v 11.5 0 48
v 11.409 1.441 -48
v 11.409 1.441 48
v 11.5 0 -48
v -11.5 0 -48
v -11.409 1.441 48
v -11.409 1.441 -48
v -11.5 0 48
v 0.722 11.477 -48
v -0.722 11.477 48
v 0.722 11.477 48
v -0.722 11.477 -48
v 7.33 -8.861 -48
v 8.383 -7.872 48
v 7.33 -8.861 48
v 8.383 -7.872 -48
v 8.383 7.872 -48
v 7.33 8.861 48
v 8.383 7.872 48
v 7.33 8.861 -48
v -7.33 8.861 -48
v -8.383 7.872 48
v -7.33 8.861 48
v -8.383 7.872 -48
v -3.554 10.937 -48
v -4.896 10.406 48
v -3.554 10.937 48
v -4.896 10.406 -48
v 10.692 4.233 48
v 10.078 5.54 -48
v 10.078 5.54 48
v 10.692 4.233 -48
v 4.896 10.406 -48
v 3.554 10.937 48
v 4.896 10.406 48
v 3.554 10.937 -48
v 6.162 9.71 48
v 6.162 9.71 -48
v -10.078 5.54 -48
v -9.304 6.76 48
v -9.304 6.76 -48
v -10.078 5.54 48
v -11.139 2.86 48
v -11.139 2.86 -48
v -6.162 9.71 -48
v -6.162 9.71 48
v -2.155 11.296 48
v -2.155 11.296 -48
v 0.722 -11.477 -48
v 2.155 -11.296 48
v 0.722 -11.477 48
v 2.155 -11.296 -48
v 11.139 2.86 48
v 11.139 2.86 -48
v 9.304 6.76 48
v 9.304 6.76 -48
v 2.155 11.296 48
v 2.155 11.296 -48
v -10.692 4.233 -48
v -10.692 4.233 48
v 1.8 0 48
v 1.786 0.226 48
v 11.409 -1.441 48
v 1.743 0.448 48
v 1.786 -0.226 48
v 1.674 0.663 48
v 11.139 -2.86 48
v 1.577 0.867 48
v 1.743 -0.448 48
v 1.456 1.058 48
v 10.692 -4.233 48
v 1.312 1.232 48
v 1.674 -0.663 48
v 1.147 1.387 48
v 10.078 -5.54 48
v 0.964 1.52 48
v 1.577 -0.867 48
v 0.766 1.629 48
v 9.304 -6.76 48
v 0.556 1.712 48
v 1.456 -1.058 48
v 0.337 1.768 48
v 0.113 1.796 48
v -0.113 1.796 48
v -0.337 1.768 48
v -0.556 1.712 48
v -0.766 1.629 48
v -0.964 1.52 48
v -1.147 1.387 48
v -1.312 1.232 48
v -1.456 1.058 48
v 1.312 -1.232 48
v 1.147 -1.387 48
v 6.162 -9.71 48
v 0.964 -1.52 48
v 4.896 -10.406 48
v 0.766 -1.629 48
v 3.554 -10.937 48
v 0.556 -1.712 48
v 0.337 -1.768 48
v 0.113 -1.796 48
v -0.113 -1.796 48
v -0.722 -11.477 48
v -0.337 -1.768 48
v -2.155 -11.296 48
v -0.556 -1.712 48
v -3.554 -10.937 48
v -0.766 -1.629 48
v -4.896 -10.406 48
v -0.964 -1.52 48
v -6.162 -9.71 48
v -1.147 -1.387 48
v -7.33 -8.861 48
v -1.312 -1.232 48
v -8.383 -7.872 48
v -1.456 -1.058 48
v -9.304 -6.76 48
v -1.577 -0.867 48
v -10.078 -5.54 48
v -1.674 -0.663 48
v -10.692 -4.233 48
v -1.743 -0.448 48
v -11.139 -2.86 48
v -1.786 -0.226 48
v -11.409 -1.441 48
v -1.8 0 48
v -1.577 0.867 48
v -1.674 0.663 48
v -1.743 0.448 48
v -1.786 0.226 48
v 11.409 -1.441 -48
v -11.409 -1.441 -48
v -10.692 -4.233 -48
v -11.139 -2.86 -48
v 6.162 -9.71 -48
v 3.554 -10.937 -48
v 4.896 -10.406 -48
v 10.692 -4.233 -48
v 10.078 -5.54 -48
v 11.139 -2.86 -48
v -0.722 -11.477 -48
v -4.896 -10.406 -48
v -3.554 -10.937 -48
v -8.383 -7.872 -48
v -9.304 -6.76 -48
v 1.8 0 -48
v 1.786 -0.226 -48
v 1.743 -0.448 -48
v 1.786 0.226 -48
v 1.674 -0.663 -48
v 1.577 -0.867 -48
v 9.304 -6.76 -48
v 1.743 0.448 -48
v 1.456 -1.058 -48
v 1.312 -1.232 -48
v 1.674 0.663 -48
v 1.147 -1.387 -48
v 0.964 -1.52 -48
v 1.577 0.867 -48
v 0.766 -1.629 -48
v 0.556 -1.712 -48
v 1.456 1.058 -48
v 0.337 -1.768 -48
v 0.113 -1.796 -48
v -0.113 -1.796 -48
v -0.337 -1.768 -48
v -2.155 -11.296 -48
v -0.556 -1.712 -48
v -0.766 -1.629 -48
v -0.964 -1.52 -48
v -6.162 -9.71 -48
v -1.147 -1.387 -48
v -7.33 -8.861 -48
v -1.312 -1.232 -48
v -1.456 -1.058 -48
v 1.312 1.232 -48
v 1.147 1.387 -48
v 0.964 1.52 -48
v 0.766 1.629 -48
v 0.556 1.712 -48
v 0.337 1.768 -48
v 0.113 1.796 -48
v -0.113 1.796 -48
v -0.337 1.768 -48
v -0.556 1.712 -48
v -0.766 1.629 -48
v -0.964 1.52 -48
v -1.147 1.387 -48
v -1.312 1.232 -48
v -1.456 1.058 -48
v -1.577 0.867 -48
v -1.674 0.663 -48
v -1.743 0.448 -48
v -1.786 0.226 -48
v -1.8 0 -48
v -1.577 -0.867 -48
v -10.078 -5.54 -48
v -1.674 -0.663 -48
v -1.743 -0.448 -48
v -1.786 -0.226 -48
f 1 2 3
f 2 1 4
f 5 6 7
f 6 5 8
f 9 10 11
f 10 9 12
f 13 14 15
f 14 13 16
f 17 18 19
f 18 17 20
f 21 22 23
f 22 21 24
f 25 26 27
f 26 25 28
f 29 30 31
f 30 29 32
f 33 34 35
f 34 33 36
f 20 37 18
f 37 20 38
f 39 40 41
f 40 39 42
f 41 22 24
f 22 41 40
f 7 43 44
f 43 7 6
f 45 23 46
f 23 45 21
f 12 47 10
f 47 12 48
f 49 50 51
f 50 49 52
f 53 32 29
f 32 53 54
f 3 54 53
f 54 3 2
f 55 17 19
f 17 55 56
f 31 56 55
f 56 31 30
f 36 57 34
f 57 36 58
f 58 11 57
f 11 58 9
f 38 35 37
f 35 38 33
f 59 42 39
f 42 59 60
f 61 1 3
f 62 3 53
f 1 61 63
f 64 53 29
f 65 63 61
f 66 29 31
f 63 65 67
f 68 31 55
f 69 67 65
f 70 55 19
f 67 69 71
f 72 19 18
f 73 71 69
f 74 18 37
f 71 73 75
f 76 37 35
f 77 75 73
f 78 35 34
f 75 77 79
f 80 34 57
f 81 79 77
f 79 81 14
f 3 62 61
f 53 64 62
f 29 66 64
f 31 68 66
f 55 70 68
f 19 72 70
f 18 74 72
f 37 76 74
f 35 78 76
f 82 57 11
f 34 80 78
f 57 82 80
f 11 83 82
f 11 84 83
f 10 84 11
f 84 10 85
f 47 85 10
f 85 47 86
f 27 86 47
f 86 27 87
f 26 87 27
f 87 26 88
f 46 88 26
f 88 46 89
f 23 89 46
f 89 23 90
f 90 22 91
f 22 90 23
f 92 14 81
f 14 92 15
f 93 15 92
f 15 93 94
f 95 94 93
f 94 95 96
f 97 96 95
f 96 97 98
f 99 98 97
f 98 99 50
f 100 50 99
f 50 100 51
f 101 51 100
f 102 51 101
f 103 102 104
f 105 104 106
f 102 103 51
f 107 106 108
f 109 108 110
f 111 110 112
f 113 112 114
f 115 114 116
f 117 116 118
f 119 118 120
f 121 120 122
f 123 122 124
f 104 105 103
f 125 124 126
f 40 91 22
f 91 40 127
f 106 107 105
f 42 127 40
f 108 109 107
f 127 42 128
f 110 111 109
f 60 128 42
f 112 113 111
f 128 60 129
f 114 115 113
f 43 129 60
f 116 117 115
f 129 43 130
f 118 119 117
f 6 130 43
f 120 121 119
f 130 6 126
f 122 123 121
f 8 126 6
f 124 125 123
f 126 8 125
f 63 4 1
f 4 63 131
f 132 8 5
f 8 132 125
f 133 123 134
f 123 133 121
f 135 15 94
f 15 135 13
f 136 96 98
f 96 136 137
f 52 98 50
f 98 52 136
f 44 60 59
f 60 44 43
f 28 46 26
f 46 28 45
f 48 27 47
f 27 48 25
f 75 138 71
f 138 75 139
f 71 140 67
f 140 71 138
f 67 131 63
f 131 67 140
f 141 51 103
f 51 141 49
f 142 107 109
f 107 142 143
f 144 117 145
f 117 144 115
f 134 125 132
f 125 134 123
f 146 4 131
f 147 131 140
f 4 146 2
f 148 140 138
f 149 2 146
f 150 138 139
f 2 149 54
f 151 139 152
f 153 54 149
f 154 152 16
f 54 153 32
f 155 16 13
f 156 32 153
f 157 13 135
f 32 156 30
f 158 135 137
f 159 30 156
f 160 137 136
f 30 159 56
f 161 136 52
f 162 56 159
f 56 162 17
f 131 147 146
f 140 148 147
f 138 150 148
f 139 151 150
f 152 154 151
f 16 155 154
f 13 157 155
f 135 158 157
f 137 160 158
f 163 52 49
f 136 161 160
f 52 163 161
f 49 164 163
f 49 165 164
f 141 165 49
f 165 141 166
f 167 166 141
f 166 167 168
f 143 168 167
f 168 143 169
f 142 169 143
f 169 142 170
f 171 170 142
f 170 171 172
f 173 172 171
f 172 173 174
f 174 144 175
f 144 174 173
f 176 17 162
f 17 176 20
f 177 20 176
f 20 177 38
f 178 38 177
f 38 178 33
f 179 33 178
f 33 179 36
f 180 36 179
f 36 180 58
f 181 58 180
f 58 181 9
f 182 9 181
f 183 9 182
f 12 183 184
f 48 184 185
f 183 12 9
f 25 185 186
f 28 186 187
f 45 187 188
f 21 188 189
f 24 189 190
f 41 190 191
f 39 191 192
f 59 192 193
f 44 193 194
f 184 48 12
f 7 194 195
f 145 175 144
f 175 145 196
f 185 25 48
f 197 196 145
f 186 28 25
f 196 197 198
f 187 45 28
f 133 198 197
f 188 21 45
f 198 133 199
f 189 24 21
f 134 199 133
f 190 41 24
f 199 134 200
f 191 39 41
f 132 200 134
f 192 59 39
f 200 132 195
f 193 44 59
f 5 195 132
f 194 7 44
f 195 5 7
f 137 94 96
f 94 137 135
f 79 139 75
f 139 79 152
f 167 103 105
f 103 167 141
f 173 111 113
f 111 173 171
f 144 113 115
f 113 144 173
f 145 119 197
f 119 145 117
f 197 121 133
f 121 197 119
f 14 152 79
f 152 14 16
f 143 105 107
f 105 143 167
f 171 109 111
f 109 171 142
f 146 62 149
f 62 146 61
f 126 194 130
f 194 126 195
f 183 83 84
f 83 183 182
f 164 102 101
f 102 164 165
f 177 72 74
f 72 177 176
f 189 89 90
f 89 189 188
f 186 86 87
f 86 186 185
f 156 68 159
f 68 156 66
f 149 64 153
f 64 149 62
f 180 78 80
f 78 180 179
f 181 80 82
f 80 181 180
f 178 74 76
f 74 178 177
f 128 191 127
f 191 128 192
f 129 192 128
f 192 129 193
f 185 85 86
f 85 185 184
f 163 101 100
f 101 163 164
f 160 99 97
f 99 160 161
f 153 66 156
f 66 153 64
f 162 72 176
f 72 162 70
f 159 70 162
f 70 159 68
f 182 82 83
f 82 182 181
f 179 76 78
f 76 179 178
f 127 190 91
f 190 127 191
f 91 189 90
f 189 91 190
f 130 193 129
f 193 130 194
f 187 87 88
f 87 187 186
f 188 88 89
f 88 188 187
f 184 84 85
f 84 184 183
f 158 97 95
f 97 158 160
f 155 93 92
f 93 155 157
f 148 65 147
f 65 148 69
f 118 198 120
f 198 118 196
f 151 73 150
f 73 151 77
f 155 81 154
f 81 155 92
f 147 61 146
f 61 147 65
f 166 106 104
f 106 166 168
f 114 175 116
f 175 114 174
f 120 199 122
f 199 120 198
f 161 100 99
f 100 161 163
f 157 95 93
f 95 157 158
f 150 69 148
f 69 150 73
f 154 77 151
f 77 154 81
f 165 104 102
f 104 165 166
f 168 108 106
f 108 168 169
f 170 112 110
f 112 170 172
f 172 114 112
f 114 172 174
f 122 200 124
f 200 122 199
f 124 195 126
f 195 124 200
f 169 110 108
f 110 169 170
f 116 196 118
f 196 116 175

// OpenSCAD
$fn = 50;


difference() {
	union() {
		translate(v = [0, 0, -48.0000000000]) {
			cylinder(h = 96, r = 11.5000000000);
		}
	}
	union() {
		translate(v = [0, 0, -100.0000000000]) {
			cylinder(h = 200, r = 1.8000000000);
		}
	}
}
